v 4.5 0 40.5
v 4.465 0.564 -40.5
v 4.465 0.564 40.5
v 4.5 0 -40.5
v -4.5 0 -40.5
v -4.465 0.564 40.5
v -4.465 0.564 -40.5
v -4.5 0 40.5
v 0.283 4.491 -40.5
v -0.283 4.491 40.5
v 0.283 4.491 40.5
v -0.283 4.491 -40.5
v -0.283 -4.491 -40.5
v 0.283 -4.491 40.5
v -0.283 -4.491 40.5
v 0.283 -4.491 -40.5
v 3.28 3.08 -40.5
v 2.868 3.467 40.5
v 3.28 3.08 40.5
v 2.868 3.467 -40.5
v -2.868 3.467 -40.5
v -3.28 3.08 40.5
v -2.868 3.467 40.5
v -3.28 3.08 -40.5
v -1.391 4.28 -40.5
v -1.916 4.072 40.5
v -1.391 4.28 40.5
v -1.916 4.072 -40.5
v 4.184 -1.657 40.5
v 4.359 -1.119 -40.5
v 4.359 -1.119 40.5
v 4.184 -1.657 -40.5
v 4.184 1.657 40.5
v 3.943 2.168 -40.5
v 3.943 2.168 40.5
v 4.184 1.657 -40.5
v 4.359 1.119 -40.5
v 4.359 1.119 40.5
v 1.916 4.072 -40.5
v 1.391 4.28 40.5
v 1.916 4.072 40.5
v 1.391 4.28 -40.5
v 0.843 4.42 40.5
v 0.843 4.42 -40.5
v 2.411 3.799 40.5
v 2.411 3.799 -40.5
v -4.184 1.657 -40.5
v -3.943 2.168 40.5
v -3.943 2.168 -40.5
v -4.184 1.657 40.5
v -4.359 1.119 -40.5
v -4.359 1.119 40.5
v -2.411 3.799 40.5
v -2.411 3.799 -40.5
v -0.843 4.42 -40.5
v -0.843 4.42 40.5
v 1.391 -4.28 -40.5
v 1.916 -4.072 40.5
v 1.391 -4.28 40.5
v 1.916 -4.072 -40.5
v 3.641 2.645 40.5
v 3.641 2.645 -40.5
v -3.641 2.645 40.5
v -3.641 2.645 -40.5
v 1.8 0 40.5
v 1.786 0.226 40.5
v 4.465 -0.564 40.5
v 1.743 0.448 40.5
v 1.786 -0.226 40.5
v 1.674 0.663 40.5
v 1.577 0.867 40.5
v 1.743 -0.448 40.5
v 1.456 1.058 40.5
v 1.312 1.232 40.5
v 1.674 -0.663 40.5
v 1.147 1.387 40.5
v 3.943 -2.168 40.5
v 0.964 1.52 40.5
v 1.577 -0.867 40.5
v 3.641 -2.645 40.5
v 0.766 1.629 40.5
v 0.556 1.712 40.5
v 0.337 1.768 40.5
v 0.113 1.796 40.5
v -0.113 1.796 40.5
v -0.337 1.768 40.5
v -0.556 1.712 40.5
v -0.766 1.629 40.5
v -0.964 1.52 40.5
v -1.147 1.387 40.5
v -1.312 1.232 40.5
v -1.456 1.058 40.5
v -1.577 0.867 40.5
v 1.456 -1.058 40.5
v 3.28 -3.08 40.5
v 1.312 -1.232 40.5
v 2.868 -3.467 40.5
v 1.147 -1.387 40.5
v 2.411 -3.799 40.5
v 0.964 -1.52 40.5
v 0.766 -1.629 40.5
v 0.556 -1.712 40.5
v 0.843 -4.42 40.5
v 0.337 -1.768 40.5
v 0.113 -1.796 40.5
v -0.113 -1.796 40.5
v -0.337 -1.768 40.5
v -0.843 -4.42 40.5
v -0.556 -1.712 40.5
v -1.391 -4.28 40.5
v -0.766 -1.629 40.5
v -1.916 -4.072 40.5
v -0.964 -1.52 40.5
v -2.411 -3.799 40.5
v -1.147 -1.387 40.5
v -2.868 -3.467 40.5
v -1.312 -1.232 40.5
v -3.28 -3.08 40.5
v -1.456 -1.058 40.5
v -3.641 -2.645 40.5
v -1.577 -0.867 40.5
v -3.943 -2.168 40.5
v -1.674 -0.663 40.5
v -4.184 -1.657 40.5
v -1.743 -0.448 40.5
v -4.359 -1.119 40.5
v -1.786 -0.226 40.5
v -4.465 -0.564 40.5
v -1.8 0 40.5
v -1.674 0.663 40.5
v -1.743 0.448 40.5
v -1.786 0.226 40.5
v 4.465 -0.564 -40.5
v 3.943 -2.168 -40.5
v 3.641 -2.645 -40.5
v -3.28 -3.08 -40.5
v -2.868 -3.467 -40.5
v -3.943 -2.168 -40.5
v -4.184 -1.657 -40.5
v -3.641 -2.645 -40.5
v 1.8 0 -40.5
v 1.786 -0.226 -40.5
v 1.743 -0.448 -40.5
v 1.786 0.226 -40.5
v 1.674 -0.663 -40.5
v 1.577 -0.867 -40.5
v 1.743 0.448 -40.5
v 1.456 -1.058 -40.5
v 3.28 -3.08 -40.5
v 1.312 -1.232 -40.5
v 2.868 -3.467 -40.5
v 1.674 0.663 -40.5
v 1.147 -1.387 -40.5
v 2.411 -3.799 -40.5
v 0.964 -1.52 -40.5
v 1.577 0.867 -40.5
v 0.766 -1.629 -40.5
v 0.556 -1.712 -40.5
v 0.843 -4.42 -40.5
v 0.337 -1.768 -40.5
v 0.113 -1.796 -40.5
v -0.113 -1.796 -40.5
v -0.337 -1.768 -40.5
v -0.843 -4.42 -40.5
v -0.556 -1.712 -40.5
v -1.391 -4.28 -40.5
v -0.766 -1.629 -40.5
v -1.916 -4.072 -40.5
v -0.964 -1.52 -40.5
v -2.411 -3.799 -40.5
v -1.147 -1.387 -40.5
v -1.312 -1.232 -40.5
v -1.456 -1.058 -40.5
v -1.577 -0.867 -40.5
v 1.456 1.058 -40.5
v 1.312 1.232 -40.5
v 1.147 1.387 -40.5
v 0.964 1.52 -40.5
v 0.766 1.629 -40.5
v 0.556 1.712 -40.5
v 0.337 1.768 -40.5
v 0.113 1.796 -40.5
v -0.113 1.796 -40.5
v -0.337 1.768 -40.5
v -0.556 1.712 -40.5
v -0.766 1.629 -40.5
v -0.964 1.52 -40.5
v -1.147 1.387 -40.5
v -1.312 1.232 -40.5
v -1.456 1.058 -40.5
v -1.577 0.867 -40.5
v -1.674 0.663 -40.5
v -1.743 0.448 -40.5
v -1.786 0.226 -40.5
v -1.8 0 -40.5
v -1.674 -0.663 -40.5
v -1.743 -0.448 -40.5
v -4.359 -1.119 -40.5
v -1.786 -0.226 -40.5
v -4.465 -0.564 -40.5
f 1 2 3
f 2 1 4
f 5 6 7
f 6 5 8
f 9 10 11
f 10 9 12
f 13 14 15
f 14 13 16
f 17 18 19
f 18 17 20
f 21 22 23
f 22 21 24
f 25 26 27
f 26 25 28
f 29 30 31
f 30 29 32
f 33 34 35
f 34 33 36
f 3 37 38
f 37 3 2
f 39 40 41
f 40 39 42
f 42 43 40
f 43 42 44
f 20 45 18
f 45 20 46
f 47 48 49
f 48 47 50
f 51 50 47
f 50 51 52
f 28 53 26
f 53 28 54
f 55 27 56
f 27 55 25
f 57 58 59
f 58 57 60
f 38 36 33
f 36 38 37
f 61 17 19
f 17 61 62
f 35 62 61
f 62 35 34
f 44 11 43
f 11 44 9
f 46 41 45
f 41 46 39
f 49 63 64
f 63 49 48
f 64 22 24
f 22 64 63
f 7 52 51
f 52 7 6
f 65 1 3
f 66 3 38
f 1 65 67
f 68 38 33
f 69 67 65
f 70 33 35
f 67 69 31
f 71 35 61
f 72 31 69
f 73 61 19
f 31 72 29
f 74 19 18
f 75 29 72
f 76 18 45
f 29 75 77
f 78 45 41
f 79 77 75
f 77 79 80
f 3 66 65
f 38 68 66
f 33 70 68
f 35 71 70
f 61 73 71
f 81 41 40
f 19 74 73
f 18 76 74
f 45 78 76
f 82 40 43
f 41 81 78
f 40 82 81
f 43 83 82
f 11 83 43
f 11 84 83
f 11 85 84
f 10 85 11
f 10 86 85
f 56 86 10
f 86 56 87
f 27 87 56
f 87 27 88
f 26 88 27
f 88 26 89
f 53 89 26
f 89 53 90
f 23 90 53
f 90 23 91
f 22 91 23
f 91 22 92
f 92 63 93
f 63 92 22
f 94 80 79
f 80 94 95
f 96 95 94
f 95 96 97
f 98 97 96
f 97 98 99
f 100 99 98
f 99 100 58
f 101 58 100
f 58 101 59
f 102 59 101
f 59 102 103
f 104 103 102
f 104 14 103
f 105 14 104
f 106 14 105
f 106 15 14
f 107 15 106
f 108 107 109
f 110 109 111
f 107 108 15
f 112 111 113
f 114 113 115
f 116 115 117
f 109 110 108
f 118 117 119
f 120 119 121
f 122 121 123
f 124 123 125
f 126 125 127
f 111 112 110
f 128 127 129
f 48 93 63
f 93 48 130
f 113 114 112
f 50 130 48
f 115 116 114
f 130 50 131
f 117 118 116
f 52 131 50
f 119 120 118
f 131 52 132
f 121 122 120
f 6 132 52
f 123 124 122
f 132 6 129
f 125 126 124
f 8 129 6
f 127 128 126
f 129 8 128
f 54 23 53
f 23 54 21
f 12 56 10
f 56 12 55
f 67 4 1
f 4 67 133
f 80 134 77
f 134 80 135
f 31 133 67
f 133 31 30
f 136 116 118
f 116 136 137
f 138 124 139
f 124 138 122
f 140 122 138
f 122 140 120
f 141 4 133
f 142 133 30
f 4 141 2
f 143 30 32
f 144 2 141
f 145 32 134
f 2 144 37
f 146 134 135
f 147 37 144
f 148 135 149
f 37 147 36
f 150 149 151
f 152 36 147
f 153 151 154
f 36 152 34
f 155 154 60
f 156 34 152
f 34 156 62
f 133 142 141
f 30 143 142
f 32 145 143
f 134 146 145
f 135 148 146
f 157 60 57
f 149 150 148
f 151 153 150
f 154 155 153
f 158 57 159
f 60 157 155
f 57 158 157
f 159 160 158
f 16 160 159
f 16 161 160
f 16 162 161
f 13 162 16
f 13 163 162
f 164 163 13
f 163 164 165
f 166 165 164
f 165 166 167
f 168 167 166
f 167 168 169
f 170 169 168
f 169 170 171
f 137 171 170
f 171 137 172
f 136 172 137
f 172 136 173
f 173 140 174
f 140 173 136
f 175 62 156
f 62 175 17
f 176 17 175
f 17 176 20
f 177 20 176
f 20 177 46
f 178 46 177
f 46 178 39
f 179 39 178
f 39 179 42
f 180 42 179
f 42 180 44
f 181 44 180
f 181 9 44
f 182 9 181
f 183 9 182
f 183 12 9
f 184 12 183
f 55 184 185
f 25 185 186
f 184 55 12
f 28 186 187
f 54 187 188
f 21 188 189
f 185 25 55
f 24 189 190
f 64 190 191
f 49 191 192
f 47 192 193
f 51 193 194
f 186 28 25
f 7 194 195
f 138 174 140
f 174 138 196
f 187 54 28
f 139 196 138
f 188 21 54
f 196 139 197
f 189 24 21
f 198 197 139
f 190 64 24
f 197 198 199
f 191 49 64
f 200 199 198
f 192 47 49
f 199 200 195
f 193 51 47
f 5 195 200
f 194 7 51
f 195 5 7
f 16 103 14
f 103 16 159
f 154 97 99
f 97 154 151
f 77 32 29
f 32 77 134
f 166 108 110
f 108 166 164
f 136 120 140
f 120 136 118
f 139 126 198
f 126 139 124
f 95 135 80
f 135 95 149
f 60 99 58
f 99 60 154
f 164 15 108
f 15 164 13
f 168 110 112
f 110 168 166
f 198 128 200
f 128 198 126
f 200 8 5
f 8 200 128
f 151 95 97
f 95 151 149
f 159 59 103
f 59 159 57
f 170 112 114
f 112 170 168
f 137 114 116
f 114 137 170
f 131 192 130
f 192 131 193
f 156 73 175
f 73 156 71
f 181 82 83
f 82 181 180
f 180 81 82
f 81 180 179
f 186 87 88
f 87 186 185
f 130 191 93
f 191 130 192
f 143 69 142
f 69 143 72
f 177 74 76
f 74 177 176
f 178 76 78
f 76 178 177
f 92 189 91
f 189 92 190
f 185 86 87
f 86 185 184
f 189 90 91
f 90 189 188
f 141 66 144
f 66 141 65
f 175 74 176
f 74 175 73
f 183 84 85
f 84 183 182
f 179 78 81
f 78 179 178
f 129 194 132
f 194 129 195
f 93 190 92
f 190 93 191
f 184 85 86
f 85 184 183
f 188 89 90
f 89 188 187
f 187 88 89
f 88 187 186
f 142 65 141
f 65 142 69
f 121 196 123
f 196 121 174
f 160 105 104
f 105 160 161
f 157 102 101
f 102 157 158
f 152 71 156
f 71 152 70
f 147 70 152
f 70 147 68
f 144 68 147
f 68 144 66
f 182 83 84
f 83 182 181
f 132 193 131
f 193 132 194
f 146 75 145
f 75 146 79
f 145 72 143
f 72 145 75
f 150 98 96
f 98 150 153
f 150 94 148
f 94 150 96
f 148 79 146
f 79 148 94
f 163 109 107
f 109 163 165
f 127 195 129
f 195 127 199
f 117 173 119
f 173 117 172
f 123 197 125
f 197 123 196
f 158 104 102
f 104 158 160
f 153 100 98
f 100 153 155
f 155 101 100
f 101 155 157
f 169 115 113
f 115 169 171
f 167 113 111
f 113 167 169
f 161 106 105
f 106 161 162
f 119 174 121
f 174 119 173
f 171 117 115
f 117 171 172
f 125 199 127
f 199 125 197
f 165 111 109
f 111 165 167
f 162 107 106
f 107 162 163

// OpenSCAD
$fn = 50;


difference() {
	union() {
		translate(v = [0, 0, -40.5000000000]) {
			cylinder(h = 81, r = 4.5000000000);
		}
	}
	union() {
		translate(v = [0, 0, -100.0000000000]) {
			cylinder(h = 200, r = 1.8000000000);
		}
	}
}
